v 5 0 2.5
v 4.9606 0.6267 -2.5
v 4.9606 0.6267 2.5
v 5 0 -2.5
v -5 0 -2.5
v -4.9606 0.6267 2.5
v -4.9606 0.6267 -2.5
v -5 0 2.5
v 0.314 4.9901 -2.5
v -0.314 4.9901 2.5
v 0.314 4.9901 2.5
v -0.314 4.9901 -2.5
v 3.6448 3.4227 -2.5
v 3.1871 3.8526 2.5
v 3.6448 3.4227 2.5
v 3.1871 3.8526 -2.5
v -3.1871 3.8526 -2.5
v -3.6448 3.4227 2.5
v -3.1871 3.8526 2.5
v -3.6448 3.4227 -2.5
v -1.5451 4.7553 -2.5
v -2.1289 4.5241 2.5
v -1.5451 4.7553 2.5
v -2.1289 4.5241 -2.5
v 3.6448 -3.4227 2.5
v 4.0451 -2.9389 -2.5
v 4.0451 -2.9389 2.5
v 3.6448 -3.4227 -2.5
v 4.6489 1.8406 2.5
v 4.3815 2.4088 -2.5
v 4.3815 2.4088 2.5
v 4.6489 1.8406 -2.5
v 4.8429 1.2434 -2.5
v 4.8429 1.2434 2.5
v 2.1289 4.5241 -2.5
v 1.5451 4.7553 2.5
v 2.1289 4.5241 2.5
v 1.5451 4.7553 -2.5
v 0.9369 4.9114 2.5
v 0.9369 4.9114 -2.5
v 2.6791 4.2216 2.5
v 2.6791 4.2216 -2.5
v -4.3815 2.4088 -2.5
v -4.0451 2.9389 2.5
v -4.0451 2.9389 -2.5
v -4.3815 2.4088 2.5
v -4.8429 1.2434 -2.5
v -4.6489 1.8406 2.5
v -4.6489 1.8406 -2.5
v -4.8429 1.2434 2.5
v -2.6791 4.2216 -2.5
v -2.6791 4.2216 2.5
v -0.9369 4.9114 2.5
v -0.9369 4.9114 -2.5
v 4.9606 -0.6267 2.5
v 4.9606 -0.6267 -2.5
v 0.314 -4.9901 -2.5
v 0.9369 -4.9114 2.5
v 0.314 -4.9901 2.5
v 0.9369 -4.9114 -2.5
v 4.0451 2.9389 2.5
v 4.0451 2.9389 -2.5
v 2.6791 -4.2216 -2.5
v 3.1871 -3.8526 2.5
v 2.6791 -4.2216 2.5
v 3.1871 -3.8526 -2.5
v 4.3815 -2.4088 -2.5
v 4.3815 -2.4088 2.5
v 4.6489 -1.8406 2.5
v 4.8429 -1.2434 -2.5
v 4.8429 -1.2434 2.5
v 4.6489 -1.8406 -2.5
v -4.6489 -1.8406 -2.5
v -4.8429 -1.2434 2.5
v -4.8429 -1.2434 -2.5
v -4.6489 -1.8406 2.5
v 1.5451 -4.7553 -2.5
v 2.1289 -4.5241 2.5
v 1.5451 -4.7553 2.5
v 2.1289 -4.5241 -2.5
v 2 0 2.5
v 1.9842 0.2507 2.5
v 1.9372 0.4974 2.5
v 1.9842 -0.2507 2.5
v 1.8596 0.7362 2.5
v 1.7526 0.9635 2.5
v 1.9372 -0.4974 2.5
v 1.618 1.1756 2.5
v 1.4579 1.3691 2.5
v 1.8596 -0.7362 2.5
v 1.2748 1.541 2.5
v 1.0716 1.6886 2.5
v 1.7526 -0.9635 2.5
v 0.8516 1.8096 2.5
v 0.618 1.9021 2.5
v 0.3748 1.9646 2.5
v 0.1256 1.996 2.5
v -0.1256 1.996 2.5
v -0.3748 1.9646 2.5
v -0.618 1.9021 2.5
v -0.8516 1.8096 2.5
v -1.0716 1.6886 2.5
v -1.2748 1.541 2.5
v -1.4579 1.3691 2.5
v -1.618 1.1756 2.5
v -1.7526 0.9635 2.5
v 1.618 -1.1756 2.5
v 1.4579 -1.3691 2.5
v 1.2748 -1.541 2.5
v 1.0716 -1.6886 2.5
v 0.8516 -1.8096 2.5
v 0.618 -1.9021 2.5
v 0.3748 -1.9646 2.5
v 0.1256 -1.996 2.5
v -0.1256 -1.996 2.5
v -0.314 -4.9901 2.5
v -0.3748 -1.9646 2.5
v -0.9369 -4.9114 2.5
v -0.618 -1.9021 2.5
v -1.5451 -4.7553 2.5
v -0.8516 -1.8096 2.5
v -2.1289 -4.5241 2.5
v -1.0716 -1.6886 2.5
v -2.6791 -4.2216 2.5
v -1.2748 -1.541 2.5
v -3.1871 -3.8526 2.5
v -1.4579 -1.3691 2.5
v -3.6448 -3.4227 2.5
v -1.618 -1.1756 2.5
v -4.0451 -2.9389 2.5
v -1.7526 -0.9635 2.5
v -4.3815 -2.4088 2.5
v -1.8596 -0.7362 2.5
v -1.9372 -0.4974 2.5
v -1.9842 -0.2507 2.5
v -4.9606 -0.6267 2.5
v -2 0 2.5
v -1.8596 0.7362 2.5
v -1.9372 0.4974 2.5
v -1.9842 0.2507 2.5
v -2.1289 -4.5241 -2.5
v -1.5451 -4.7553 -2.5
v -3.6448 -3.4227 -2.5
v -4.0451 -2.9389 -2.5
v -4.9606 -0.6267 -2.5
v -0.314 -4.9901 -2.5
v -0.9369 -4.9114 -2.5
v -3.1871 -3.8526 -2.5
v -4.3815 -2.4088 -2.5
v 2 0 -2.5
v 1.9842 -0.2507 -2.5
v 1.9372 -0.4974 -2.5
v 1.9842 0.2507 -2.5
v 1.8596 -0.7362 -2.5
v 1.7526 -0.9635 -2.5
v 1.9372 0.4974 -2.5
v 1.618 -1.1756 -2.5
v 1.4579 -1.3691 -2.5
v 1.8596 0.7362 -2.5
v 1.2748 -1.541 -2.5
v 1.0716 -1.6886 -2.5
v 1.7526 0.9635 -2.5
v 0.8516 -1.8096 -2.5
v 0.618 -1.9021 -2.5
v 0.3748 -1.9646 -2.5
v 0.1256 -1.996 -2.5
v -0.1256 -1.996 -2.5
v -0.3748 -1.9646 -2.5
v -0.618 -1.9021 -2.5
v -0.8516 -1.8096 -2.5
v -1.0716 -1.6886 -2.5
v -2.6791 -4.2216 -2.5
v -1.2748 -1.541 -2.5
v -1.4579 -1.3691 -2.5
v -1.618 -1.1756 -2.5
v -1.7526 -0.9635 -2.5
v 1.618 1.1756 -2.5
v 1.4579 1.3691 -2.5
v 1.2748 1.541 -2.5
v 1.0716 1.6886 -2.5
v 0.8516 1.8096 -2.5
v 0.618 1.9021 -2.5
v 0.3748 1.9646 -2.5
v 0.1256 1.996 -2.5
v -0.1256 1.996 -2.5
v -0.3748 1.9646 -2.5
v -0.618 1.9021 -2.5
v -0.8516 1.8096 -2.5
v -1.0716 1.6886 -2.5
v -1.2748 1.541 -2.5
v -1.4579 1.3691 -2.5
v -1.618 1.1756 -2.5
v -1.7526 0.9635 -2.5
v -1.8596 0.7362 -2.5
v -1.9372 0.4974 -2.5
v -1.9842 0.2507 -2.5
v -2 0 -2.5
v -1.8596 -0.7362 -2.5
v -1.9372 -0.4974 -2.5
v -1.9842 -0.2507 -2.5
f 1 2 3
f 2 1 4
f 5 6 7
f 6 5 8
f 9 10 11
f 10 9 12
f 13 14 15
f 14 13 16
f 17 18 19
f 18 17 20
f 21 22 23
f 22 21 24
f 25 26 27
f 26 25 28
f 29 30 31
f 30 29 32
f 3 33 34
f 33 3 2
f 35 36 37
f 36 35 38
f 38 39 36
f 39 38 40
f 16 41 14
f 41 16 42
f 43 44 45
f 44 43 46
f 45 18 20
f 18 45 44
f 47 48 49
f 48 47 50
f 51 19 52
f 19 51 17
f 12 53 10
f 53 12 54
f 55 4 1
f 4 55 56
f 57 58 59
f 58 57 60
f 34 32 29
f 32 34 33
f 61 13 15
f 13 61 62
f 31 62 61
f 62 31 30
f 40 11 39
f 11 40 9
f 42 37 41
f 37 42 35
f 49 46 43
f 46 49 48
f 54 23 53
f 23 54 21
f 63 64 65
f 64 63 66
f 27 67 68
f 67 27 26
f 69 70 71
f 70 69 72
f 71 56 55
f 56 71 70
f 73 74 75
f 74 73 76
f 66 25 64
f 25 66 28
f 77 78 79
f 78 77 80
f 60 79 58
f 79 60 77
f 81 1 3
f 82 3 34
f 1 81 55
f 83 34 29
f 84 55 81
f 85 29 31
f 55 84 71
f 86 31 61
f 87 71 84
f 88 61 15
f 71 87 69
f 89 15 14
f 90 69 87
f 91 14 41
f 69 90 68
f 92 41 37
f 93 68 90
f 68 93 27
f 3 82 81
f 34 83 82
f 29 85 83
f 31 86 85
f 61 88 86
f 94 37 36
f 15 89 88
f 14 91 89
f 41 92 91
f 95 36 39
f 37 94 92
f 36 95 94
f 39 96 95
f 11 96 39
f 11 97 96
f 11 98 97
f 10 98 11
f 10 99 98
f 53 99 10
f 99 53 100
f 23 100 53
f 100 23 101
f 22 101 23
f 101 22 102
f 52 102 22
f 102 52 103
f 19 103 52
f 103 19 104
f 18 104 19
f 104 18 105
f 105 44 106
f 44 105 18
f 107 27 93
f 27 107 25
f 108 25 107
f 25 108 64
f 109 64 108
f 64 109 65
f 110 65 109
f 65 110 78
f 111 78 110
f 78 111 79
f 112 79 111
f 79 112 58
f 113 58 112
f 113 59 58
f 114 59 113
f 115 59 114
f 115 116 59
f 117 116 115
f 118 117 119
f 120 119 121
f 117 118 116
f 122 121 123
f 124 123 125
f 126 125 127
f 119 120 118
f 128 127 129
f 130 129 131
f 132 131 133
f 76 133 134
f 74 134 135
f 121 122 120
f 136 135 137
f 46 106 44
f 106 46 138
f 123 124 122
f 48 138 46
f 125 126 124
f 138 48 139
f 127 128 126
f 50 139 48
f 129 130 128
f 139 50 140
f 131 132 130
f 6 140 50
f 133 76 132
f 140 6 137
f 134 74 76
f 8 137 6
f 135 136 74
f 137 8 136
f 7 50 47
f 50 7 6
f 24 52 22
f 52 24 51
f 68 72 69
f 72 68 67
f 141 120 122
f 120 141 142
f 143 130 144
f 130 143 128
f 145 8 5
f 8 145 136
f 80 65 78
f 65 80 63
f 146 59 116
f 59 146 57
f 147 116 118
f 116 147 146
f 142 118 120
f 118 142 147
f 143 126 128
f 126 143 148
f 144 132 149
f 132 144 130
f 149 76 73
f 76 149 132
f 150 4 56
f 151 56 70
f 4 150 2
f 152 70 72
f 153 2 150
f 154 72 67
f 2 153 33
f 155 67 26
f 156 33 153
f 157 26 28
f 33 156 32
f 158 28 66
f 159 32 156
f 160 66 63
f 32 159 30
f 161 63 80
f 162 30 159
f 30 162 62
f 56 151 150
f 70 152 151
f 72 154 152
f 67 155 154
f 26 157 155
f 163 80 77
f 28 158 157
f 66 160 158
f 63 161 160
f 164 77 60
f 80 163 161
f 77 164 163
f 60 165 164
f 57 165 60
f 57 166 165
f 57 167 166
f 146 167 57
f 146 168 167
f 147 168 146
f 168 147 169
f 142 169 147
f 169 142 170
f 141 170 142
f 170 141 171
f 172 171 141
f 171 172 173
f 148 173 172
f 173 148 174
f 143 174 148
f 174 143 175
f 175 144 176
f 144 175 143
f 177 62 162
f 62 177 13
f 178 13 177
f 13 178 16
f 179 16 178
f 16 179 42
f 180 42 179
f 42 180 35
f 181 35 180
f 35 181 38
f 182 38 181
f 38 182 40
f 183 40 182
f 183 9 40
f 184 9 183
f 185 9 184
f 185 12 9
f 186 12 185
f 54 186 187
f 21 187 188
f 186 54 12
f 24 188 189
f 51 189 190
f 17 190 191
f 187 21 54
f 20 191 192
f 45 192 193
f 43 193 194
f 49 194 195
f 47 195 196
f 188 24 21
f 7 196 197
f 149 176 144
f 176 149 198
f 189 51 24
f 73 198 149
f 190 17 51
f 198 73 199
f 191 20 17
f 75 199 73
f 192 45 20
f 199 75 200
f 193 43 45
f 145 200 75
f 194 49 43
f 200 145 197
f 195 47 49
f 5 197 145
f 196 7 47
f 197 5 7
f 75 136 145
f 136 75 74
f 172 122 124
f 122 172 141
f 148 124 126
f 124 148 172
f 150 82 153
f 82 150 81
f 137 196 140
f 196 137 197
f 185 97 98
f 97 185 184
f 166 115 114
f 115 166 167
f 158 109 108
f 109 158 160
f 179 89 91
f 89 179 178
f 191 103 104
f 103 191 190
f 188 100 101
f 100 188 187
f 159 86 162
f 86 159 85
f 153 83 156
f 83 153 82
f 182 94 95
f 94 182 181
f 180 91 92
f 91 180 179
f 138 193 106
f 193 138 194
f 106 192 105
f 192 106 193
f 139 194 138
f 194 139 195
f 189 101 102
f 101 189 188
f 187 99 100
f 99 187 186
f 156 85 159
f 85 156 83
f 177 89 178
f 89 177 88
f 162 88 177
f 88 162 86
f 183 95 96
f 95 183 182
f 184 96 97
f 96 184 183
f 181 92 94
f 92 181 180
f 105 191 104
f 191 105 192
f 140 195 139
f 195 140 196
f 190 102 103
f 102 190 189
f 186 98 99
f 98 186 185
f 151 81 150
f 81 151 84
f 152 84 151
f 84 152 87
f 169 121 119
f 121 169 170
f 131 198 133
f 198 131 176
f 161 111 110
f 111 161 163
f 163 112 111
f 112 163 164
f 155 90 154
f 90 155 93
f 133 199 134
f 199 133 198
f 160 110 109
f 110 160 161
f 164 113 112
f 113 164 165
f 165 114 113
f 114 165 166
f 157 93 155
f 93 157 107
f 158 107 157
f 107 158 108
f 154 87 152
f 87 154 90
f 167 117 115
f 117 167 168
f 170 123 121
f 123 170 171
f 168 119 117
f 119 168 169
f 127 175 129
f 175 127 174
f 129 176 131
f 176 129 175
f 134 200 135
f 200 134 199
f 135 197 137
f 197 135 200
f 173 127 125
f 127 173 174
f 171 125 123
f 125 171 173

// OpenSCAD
$fn = 50;


difference() {
	union() {
		translate(v = [0, 0, -2.5000000000]) {
			cylinder(h = 5, r = 5.0000000000);
		}
	}
	union() {
		translate(v = [0, 0, -100.0000000000]) {
			cylinder(h = 200, r = 2.0000000000);
		}
	}
}
